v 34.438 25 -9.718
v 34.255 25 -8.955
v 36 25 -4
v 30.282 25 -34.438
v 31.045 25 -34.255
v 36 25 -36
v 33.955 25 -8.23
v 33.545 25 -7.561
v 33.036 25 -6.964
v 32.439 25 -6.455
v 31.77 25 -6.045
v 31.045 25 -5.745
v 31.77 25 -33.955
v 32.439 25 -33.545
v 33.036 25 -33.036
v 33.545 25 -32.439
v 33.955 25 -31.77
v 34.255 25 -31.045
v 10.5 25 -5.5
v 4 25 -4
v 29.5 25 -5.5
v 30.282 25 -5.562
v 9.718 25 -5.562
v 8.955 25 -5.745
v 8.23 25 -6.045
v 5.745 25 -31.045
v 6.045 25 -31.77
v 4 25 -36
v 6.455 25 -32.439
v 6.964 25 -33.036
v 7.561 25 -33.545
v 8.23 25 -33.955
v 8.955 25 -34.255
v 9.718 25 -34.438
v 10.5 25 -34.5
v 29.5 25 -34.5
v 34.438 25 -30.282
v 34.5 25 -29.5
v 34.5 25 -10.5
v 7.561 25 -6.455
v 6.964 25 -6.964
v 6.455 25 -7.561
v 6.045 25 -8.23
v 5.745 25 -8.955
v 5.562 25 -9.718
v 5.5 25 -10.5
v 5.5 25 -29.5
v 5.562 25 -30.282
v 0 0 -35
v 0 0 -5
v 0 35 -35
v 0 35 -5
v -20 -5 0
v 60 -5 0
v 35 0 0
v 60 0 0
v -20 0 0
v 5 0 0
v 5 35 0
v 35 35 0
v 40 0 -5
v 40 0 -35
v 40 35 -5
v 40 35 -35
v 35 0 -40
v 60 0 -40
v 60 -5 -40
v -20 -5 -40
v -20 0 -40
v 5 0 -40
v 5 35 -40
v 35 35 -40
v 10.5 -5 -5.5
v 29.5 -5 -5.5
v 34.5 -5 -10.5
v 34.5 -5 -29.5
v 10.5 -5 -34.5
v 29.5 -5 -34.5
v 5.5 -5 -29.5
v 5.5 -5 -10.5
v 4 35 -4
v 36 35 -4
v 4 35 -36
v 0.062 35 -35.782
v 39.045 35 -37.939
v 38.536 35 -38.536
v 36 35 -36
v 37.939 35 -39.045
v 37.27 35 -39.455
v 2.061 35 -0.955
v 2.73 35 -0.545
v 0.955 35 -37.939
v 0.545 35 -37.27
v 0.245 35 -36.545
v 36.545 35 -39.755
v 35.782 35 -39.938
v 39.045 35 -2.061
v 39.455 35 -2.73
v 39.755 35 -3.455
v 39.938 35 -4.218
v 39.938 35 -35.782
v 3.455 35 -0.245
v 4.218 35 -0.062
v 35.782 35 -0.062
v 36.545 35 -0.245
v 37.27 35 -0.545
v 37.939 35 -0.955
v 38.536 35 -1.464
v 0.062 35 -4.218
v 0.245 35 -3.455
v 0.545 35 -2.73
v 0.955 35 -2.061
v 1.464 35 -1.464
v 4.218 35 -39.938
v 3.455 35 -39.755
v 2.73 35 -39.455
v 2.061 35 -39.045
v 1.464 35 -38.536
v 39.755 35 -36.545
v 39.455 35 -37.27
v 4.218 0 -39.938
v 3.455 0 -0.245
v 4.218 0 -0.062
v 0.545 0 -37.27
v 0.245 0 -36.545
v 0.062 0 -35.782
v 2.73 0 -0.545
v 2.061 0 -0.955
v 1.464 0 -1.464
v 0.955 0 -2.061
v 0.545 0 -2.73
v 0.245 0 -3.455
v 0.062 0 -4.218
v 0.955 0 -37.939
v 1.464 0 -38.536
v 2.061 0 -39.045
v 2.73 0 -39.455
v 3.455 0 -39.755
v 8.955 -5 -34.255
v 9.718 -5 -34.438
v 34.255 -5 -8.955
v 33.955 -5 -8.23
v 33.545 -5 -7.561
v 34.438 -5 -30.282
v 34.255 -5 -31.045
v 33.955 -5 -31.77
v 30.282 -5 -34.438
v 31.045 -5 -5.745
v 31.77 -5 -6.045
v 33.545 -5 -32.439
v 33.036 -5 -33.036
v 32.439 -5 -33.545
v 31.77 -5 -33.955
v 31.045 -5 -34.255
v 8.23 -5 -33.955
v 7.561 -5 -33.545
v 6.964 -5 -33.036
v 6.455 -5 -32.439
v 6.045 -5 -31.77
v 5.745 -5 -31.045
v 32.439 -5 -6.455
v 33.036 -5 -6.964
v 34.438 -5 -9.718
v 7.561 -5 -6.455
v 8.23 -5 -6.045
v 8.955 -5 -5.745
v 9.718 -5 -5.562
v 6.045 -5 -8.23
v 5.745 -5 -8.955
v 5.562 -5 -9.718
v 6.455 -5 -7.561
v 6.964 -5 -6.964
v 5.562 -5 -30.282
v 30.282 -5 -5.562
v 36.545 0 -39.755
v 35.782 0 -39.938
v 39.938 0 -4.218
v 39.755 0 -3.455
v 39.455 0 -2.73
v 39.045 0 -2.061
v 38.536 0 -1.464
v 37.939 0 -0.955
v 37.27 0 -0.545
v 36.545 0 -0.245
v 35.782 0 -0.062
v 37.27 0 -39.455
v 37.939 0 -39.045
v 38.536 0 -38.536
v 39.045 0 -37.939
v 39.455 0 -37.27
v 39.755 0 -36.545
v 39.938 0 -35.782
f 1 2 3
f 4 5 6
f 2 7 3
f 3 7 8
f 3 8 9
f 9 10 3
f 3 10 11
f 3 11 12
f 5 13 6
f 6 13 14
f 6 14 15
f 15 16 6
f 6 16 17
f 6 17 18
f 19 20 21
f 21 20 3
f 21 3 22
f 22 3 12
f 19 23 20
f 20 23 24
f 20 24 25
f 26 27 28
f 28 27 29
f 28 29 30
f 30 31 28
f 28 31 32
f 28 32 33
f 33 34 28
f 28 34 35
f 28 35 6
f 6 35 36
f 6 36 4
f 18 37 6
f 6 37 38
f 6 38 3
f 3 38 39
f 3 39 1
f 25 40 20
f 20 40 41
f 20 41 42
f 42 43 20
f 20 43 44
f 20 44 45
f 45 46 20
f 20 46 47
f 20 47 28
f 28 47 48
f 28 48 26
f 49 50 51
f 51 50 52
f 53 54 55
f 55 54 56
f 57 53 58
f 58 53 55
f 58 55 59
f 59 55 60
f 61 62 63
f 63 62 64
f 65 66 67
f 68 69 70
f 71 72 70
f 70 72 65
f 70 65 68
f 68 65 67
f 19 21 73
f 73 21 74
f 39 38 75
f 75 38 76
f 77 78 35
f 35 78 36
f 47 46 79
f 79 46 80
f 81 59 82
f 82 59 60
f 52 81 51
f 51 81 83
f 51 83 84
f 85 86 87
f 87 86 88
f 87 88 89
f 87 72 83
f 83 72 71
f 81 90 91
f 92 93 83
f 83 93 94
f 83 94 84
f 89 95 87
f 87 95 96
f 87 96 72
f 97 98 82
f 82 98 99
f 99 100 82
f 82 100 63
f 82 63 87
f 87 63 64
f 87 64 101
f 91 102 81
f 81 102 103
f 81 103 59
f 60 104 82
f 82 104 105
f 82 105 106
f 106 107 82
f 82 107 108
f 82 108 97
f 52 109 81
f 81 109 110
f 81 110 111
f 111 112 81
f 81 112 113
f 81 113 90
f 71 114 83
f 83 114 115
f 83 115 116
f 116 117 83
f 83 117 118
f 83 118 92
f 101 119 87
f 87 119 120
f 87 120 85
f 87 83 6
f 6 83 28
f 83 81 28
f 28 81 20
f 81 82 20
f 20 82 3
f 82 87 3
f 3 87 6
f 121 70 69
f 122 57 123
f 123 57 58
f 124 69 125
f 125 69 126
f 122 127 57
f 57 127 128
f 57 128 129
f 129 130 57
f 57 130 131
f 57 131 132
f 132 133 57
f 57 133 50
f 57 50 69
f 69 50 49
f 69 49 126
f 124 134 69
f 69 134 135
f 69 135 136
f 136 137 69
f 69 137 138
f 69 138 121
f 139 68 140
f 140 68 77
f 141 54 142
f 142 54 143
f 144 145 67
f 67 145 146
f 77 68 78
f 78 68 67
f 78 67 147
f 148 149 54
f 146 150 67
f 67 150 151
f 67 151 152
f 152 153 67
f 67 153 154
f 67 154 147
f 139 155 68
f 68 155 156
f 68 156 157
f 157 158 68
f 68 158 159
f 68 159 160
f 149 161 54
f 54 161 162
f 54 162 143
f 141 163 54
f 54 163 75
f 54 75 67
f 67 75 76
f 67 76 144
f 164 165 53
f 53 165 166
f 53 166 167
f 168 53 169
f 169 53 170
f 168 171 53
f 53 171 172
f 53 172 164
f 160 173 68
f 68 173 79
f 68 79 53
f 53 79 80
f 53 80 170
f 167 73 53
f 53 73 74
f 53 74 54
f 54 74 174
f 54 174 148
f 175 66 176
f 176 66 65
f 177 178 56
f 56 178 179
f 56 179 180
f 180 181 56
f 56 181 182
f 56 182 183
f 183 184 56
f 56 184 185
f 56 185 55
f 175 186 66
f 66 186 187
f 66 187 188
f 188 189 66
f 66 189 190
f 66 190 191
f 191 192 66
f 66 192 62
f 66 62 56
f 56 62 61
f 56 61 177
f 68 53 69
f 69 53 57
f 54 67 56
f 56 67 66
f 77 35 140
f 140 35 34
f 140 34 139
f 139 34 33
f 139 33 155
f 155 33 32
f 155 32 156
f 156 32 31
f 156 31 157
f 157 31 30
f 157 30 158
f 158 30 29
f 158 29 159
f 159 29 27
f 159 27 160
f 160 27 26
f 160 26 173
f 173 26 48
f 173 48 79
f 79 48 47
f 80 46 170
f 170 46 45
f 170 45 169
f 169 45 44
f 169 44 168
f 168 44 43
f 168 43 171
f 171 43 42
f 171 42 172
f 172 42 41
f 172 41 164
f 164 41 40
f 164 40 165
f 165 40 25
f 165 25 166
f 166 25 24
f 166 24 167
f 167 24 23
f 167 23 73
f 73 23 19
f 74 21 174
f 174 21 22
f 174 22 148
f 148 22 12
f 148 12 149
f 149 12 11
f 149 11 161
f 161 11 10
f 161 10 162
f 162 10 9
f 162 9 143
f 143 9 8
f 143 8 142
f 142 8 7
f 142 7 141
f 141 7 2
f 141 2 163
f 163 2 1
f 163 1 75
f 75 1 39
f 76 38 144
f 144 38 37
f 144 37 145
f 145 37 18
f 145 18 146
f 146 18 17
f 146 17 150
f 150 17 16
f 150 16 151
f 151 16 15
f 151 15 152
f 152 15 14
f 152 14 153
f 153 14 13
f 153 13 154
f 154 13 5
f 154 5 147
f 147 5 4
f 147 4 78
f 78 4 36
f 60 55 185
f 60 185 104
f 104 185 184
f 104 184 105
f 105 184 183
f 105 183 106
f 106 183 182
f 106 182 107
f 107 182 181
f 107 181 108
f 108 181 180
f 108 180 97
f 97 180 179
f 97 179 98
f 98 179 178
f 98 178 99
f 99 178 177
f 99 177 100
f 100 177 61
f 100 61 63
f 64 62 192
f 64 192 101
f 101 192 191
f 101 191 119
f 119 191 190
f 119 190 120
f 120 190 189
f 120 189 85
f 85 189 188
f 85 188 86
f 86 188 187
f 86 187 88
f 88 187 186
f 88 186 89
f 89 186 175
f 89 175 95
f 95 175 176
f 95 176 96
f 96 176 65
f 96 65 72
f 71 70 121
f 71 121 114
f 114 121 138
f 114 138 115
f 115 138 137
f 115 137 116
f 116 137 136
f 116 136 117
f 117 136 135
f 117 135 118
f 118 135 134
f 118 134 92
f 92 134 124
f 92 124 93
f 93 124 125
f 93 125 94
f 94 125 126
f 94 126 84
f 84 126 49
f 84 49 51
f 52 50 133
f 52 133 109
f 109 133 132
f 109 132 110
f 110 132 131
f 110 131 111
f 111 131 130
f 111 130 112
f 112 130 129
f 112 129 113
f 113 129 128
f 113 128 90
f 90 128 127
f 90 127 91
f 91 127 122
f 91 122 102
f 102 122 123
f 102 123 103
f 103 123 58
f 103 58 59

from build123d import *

# Parameters (mm, degrees)
SKETCH1_W           = 40
SKETCH1_H           = 40
SKETCH1_W_2         = 29
SKETCH1_H_2         = 29
BOSS_EXTRUDE1_DEPTH = 25
SKETCH2_W           = 40
SKETCH2_H           = 40
SKETCH2_W_2         = 32
SKETCH2_H_2         = 32
BOSS_EXTRUDE2_DEPTH = 10
SKETCH4_W           = 80
SKETCH4_H           = 40
SKETCH4_W_2         = 29
SKETCH4_H_2         = 29
BOSS_EXTRUDE3_DEPTH = 5
FILLET6_R           = 5


with BuildPart() as part:
    # Sketch1 → Boss-Extrude1 (new body)
    with BuildSketch(Plane(origin=(0, 0, 0), x_dir=(1, 0, 0), z_dir=(0, 1, 0))):
        with Locations((20, 20)):
            Rectangle(SKETCH1_W, SKETCH1_H)
        with Locations((20, 20)):
            Rectangle(SKETCH1_W_2, SKETCH1_H_2, mode=Mode.SUBTRACT)
    extrude(amount=BOSS_EXTRUDE1_DEPTH)

    # Sketch2 → Boss-Extrude2 (add)
    with BuildSketch(Plane(origin=(0, 25, 0), x_dir=(1, 0, 0), z_dir=(0, 1, 0))):
        with Locations((20, 20)):
            Rectangle(SKETCH2_W, SKETCH2_H)
        with Locations((20, 20)):
            Rectangle(SKETCH2_W_2, SKETCH2_H_2, mode=Mode.SUBTRACT)
    extrude(amount=BOSS_EXTRUDE2_DEPTH)

    # Sketch4 → Boss-Extrude3 (add)
    with BuildSketch(Plane.XZ):
        with Locations((20, -20)):
            Rectangle(SKETCH4_W, SKETCH4_H)
        with Locations((20, -20)):
            Rectangle(SKETCH4_W_2, SKETCH4_H_2, mode=Mode.SUBTRACT)
    extrude(amount=BOSS_EXTRUDE3_DEPTH)

    # Fillet6
    fillet6_edges = [part.edges().sort_by_distance(p)[0] for p in [
        (5.5, 10, -5.5),
        (34.5, 10, -5.5),
        (34.5, 10, -34.5),
        (5.5, 10, -34.5),
        (0, 17.5, -40),
        (40, 17.5, -40),
        (40, 17.5, 0),
        (0, 17.5, 0),
    ]]
    fillet(fillet6_edges, radius=FILLET6_R)


solid = part.part
